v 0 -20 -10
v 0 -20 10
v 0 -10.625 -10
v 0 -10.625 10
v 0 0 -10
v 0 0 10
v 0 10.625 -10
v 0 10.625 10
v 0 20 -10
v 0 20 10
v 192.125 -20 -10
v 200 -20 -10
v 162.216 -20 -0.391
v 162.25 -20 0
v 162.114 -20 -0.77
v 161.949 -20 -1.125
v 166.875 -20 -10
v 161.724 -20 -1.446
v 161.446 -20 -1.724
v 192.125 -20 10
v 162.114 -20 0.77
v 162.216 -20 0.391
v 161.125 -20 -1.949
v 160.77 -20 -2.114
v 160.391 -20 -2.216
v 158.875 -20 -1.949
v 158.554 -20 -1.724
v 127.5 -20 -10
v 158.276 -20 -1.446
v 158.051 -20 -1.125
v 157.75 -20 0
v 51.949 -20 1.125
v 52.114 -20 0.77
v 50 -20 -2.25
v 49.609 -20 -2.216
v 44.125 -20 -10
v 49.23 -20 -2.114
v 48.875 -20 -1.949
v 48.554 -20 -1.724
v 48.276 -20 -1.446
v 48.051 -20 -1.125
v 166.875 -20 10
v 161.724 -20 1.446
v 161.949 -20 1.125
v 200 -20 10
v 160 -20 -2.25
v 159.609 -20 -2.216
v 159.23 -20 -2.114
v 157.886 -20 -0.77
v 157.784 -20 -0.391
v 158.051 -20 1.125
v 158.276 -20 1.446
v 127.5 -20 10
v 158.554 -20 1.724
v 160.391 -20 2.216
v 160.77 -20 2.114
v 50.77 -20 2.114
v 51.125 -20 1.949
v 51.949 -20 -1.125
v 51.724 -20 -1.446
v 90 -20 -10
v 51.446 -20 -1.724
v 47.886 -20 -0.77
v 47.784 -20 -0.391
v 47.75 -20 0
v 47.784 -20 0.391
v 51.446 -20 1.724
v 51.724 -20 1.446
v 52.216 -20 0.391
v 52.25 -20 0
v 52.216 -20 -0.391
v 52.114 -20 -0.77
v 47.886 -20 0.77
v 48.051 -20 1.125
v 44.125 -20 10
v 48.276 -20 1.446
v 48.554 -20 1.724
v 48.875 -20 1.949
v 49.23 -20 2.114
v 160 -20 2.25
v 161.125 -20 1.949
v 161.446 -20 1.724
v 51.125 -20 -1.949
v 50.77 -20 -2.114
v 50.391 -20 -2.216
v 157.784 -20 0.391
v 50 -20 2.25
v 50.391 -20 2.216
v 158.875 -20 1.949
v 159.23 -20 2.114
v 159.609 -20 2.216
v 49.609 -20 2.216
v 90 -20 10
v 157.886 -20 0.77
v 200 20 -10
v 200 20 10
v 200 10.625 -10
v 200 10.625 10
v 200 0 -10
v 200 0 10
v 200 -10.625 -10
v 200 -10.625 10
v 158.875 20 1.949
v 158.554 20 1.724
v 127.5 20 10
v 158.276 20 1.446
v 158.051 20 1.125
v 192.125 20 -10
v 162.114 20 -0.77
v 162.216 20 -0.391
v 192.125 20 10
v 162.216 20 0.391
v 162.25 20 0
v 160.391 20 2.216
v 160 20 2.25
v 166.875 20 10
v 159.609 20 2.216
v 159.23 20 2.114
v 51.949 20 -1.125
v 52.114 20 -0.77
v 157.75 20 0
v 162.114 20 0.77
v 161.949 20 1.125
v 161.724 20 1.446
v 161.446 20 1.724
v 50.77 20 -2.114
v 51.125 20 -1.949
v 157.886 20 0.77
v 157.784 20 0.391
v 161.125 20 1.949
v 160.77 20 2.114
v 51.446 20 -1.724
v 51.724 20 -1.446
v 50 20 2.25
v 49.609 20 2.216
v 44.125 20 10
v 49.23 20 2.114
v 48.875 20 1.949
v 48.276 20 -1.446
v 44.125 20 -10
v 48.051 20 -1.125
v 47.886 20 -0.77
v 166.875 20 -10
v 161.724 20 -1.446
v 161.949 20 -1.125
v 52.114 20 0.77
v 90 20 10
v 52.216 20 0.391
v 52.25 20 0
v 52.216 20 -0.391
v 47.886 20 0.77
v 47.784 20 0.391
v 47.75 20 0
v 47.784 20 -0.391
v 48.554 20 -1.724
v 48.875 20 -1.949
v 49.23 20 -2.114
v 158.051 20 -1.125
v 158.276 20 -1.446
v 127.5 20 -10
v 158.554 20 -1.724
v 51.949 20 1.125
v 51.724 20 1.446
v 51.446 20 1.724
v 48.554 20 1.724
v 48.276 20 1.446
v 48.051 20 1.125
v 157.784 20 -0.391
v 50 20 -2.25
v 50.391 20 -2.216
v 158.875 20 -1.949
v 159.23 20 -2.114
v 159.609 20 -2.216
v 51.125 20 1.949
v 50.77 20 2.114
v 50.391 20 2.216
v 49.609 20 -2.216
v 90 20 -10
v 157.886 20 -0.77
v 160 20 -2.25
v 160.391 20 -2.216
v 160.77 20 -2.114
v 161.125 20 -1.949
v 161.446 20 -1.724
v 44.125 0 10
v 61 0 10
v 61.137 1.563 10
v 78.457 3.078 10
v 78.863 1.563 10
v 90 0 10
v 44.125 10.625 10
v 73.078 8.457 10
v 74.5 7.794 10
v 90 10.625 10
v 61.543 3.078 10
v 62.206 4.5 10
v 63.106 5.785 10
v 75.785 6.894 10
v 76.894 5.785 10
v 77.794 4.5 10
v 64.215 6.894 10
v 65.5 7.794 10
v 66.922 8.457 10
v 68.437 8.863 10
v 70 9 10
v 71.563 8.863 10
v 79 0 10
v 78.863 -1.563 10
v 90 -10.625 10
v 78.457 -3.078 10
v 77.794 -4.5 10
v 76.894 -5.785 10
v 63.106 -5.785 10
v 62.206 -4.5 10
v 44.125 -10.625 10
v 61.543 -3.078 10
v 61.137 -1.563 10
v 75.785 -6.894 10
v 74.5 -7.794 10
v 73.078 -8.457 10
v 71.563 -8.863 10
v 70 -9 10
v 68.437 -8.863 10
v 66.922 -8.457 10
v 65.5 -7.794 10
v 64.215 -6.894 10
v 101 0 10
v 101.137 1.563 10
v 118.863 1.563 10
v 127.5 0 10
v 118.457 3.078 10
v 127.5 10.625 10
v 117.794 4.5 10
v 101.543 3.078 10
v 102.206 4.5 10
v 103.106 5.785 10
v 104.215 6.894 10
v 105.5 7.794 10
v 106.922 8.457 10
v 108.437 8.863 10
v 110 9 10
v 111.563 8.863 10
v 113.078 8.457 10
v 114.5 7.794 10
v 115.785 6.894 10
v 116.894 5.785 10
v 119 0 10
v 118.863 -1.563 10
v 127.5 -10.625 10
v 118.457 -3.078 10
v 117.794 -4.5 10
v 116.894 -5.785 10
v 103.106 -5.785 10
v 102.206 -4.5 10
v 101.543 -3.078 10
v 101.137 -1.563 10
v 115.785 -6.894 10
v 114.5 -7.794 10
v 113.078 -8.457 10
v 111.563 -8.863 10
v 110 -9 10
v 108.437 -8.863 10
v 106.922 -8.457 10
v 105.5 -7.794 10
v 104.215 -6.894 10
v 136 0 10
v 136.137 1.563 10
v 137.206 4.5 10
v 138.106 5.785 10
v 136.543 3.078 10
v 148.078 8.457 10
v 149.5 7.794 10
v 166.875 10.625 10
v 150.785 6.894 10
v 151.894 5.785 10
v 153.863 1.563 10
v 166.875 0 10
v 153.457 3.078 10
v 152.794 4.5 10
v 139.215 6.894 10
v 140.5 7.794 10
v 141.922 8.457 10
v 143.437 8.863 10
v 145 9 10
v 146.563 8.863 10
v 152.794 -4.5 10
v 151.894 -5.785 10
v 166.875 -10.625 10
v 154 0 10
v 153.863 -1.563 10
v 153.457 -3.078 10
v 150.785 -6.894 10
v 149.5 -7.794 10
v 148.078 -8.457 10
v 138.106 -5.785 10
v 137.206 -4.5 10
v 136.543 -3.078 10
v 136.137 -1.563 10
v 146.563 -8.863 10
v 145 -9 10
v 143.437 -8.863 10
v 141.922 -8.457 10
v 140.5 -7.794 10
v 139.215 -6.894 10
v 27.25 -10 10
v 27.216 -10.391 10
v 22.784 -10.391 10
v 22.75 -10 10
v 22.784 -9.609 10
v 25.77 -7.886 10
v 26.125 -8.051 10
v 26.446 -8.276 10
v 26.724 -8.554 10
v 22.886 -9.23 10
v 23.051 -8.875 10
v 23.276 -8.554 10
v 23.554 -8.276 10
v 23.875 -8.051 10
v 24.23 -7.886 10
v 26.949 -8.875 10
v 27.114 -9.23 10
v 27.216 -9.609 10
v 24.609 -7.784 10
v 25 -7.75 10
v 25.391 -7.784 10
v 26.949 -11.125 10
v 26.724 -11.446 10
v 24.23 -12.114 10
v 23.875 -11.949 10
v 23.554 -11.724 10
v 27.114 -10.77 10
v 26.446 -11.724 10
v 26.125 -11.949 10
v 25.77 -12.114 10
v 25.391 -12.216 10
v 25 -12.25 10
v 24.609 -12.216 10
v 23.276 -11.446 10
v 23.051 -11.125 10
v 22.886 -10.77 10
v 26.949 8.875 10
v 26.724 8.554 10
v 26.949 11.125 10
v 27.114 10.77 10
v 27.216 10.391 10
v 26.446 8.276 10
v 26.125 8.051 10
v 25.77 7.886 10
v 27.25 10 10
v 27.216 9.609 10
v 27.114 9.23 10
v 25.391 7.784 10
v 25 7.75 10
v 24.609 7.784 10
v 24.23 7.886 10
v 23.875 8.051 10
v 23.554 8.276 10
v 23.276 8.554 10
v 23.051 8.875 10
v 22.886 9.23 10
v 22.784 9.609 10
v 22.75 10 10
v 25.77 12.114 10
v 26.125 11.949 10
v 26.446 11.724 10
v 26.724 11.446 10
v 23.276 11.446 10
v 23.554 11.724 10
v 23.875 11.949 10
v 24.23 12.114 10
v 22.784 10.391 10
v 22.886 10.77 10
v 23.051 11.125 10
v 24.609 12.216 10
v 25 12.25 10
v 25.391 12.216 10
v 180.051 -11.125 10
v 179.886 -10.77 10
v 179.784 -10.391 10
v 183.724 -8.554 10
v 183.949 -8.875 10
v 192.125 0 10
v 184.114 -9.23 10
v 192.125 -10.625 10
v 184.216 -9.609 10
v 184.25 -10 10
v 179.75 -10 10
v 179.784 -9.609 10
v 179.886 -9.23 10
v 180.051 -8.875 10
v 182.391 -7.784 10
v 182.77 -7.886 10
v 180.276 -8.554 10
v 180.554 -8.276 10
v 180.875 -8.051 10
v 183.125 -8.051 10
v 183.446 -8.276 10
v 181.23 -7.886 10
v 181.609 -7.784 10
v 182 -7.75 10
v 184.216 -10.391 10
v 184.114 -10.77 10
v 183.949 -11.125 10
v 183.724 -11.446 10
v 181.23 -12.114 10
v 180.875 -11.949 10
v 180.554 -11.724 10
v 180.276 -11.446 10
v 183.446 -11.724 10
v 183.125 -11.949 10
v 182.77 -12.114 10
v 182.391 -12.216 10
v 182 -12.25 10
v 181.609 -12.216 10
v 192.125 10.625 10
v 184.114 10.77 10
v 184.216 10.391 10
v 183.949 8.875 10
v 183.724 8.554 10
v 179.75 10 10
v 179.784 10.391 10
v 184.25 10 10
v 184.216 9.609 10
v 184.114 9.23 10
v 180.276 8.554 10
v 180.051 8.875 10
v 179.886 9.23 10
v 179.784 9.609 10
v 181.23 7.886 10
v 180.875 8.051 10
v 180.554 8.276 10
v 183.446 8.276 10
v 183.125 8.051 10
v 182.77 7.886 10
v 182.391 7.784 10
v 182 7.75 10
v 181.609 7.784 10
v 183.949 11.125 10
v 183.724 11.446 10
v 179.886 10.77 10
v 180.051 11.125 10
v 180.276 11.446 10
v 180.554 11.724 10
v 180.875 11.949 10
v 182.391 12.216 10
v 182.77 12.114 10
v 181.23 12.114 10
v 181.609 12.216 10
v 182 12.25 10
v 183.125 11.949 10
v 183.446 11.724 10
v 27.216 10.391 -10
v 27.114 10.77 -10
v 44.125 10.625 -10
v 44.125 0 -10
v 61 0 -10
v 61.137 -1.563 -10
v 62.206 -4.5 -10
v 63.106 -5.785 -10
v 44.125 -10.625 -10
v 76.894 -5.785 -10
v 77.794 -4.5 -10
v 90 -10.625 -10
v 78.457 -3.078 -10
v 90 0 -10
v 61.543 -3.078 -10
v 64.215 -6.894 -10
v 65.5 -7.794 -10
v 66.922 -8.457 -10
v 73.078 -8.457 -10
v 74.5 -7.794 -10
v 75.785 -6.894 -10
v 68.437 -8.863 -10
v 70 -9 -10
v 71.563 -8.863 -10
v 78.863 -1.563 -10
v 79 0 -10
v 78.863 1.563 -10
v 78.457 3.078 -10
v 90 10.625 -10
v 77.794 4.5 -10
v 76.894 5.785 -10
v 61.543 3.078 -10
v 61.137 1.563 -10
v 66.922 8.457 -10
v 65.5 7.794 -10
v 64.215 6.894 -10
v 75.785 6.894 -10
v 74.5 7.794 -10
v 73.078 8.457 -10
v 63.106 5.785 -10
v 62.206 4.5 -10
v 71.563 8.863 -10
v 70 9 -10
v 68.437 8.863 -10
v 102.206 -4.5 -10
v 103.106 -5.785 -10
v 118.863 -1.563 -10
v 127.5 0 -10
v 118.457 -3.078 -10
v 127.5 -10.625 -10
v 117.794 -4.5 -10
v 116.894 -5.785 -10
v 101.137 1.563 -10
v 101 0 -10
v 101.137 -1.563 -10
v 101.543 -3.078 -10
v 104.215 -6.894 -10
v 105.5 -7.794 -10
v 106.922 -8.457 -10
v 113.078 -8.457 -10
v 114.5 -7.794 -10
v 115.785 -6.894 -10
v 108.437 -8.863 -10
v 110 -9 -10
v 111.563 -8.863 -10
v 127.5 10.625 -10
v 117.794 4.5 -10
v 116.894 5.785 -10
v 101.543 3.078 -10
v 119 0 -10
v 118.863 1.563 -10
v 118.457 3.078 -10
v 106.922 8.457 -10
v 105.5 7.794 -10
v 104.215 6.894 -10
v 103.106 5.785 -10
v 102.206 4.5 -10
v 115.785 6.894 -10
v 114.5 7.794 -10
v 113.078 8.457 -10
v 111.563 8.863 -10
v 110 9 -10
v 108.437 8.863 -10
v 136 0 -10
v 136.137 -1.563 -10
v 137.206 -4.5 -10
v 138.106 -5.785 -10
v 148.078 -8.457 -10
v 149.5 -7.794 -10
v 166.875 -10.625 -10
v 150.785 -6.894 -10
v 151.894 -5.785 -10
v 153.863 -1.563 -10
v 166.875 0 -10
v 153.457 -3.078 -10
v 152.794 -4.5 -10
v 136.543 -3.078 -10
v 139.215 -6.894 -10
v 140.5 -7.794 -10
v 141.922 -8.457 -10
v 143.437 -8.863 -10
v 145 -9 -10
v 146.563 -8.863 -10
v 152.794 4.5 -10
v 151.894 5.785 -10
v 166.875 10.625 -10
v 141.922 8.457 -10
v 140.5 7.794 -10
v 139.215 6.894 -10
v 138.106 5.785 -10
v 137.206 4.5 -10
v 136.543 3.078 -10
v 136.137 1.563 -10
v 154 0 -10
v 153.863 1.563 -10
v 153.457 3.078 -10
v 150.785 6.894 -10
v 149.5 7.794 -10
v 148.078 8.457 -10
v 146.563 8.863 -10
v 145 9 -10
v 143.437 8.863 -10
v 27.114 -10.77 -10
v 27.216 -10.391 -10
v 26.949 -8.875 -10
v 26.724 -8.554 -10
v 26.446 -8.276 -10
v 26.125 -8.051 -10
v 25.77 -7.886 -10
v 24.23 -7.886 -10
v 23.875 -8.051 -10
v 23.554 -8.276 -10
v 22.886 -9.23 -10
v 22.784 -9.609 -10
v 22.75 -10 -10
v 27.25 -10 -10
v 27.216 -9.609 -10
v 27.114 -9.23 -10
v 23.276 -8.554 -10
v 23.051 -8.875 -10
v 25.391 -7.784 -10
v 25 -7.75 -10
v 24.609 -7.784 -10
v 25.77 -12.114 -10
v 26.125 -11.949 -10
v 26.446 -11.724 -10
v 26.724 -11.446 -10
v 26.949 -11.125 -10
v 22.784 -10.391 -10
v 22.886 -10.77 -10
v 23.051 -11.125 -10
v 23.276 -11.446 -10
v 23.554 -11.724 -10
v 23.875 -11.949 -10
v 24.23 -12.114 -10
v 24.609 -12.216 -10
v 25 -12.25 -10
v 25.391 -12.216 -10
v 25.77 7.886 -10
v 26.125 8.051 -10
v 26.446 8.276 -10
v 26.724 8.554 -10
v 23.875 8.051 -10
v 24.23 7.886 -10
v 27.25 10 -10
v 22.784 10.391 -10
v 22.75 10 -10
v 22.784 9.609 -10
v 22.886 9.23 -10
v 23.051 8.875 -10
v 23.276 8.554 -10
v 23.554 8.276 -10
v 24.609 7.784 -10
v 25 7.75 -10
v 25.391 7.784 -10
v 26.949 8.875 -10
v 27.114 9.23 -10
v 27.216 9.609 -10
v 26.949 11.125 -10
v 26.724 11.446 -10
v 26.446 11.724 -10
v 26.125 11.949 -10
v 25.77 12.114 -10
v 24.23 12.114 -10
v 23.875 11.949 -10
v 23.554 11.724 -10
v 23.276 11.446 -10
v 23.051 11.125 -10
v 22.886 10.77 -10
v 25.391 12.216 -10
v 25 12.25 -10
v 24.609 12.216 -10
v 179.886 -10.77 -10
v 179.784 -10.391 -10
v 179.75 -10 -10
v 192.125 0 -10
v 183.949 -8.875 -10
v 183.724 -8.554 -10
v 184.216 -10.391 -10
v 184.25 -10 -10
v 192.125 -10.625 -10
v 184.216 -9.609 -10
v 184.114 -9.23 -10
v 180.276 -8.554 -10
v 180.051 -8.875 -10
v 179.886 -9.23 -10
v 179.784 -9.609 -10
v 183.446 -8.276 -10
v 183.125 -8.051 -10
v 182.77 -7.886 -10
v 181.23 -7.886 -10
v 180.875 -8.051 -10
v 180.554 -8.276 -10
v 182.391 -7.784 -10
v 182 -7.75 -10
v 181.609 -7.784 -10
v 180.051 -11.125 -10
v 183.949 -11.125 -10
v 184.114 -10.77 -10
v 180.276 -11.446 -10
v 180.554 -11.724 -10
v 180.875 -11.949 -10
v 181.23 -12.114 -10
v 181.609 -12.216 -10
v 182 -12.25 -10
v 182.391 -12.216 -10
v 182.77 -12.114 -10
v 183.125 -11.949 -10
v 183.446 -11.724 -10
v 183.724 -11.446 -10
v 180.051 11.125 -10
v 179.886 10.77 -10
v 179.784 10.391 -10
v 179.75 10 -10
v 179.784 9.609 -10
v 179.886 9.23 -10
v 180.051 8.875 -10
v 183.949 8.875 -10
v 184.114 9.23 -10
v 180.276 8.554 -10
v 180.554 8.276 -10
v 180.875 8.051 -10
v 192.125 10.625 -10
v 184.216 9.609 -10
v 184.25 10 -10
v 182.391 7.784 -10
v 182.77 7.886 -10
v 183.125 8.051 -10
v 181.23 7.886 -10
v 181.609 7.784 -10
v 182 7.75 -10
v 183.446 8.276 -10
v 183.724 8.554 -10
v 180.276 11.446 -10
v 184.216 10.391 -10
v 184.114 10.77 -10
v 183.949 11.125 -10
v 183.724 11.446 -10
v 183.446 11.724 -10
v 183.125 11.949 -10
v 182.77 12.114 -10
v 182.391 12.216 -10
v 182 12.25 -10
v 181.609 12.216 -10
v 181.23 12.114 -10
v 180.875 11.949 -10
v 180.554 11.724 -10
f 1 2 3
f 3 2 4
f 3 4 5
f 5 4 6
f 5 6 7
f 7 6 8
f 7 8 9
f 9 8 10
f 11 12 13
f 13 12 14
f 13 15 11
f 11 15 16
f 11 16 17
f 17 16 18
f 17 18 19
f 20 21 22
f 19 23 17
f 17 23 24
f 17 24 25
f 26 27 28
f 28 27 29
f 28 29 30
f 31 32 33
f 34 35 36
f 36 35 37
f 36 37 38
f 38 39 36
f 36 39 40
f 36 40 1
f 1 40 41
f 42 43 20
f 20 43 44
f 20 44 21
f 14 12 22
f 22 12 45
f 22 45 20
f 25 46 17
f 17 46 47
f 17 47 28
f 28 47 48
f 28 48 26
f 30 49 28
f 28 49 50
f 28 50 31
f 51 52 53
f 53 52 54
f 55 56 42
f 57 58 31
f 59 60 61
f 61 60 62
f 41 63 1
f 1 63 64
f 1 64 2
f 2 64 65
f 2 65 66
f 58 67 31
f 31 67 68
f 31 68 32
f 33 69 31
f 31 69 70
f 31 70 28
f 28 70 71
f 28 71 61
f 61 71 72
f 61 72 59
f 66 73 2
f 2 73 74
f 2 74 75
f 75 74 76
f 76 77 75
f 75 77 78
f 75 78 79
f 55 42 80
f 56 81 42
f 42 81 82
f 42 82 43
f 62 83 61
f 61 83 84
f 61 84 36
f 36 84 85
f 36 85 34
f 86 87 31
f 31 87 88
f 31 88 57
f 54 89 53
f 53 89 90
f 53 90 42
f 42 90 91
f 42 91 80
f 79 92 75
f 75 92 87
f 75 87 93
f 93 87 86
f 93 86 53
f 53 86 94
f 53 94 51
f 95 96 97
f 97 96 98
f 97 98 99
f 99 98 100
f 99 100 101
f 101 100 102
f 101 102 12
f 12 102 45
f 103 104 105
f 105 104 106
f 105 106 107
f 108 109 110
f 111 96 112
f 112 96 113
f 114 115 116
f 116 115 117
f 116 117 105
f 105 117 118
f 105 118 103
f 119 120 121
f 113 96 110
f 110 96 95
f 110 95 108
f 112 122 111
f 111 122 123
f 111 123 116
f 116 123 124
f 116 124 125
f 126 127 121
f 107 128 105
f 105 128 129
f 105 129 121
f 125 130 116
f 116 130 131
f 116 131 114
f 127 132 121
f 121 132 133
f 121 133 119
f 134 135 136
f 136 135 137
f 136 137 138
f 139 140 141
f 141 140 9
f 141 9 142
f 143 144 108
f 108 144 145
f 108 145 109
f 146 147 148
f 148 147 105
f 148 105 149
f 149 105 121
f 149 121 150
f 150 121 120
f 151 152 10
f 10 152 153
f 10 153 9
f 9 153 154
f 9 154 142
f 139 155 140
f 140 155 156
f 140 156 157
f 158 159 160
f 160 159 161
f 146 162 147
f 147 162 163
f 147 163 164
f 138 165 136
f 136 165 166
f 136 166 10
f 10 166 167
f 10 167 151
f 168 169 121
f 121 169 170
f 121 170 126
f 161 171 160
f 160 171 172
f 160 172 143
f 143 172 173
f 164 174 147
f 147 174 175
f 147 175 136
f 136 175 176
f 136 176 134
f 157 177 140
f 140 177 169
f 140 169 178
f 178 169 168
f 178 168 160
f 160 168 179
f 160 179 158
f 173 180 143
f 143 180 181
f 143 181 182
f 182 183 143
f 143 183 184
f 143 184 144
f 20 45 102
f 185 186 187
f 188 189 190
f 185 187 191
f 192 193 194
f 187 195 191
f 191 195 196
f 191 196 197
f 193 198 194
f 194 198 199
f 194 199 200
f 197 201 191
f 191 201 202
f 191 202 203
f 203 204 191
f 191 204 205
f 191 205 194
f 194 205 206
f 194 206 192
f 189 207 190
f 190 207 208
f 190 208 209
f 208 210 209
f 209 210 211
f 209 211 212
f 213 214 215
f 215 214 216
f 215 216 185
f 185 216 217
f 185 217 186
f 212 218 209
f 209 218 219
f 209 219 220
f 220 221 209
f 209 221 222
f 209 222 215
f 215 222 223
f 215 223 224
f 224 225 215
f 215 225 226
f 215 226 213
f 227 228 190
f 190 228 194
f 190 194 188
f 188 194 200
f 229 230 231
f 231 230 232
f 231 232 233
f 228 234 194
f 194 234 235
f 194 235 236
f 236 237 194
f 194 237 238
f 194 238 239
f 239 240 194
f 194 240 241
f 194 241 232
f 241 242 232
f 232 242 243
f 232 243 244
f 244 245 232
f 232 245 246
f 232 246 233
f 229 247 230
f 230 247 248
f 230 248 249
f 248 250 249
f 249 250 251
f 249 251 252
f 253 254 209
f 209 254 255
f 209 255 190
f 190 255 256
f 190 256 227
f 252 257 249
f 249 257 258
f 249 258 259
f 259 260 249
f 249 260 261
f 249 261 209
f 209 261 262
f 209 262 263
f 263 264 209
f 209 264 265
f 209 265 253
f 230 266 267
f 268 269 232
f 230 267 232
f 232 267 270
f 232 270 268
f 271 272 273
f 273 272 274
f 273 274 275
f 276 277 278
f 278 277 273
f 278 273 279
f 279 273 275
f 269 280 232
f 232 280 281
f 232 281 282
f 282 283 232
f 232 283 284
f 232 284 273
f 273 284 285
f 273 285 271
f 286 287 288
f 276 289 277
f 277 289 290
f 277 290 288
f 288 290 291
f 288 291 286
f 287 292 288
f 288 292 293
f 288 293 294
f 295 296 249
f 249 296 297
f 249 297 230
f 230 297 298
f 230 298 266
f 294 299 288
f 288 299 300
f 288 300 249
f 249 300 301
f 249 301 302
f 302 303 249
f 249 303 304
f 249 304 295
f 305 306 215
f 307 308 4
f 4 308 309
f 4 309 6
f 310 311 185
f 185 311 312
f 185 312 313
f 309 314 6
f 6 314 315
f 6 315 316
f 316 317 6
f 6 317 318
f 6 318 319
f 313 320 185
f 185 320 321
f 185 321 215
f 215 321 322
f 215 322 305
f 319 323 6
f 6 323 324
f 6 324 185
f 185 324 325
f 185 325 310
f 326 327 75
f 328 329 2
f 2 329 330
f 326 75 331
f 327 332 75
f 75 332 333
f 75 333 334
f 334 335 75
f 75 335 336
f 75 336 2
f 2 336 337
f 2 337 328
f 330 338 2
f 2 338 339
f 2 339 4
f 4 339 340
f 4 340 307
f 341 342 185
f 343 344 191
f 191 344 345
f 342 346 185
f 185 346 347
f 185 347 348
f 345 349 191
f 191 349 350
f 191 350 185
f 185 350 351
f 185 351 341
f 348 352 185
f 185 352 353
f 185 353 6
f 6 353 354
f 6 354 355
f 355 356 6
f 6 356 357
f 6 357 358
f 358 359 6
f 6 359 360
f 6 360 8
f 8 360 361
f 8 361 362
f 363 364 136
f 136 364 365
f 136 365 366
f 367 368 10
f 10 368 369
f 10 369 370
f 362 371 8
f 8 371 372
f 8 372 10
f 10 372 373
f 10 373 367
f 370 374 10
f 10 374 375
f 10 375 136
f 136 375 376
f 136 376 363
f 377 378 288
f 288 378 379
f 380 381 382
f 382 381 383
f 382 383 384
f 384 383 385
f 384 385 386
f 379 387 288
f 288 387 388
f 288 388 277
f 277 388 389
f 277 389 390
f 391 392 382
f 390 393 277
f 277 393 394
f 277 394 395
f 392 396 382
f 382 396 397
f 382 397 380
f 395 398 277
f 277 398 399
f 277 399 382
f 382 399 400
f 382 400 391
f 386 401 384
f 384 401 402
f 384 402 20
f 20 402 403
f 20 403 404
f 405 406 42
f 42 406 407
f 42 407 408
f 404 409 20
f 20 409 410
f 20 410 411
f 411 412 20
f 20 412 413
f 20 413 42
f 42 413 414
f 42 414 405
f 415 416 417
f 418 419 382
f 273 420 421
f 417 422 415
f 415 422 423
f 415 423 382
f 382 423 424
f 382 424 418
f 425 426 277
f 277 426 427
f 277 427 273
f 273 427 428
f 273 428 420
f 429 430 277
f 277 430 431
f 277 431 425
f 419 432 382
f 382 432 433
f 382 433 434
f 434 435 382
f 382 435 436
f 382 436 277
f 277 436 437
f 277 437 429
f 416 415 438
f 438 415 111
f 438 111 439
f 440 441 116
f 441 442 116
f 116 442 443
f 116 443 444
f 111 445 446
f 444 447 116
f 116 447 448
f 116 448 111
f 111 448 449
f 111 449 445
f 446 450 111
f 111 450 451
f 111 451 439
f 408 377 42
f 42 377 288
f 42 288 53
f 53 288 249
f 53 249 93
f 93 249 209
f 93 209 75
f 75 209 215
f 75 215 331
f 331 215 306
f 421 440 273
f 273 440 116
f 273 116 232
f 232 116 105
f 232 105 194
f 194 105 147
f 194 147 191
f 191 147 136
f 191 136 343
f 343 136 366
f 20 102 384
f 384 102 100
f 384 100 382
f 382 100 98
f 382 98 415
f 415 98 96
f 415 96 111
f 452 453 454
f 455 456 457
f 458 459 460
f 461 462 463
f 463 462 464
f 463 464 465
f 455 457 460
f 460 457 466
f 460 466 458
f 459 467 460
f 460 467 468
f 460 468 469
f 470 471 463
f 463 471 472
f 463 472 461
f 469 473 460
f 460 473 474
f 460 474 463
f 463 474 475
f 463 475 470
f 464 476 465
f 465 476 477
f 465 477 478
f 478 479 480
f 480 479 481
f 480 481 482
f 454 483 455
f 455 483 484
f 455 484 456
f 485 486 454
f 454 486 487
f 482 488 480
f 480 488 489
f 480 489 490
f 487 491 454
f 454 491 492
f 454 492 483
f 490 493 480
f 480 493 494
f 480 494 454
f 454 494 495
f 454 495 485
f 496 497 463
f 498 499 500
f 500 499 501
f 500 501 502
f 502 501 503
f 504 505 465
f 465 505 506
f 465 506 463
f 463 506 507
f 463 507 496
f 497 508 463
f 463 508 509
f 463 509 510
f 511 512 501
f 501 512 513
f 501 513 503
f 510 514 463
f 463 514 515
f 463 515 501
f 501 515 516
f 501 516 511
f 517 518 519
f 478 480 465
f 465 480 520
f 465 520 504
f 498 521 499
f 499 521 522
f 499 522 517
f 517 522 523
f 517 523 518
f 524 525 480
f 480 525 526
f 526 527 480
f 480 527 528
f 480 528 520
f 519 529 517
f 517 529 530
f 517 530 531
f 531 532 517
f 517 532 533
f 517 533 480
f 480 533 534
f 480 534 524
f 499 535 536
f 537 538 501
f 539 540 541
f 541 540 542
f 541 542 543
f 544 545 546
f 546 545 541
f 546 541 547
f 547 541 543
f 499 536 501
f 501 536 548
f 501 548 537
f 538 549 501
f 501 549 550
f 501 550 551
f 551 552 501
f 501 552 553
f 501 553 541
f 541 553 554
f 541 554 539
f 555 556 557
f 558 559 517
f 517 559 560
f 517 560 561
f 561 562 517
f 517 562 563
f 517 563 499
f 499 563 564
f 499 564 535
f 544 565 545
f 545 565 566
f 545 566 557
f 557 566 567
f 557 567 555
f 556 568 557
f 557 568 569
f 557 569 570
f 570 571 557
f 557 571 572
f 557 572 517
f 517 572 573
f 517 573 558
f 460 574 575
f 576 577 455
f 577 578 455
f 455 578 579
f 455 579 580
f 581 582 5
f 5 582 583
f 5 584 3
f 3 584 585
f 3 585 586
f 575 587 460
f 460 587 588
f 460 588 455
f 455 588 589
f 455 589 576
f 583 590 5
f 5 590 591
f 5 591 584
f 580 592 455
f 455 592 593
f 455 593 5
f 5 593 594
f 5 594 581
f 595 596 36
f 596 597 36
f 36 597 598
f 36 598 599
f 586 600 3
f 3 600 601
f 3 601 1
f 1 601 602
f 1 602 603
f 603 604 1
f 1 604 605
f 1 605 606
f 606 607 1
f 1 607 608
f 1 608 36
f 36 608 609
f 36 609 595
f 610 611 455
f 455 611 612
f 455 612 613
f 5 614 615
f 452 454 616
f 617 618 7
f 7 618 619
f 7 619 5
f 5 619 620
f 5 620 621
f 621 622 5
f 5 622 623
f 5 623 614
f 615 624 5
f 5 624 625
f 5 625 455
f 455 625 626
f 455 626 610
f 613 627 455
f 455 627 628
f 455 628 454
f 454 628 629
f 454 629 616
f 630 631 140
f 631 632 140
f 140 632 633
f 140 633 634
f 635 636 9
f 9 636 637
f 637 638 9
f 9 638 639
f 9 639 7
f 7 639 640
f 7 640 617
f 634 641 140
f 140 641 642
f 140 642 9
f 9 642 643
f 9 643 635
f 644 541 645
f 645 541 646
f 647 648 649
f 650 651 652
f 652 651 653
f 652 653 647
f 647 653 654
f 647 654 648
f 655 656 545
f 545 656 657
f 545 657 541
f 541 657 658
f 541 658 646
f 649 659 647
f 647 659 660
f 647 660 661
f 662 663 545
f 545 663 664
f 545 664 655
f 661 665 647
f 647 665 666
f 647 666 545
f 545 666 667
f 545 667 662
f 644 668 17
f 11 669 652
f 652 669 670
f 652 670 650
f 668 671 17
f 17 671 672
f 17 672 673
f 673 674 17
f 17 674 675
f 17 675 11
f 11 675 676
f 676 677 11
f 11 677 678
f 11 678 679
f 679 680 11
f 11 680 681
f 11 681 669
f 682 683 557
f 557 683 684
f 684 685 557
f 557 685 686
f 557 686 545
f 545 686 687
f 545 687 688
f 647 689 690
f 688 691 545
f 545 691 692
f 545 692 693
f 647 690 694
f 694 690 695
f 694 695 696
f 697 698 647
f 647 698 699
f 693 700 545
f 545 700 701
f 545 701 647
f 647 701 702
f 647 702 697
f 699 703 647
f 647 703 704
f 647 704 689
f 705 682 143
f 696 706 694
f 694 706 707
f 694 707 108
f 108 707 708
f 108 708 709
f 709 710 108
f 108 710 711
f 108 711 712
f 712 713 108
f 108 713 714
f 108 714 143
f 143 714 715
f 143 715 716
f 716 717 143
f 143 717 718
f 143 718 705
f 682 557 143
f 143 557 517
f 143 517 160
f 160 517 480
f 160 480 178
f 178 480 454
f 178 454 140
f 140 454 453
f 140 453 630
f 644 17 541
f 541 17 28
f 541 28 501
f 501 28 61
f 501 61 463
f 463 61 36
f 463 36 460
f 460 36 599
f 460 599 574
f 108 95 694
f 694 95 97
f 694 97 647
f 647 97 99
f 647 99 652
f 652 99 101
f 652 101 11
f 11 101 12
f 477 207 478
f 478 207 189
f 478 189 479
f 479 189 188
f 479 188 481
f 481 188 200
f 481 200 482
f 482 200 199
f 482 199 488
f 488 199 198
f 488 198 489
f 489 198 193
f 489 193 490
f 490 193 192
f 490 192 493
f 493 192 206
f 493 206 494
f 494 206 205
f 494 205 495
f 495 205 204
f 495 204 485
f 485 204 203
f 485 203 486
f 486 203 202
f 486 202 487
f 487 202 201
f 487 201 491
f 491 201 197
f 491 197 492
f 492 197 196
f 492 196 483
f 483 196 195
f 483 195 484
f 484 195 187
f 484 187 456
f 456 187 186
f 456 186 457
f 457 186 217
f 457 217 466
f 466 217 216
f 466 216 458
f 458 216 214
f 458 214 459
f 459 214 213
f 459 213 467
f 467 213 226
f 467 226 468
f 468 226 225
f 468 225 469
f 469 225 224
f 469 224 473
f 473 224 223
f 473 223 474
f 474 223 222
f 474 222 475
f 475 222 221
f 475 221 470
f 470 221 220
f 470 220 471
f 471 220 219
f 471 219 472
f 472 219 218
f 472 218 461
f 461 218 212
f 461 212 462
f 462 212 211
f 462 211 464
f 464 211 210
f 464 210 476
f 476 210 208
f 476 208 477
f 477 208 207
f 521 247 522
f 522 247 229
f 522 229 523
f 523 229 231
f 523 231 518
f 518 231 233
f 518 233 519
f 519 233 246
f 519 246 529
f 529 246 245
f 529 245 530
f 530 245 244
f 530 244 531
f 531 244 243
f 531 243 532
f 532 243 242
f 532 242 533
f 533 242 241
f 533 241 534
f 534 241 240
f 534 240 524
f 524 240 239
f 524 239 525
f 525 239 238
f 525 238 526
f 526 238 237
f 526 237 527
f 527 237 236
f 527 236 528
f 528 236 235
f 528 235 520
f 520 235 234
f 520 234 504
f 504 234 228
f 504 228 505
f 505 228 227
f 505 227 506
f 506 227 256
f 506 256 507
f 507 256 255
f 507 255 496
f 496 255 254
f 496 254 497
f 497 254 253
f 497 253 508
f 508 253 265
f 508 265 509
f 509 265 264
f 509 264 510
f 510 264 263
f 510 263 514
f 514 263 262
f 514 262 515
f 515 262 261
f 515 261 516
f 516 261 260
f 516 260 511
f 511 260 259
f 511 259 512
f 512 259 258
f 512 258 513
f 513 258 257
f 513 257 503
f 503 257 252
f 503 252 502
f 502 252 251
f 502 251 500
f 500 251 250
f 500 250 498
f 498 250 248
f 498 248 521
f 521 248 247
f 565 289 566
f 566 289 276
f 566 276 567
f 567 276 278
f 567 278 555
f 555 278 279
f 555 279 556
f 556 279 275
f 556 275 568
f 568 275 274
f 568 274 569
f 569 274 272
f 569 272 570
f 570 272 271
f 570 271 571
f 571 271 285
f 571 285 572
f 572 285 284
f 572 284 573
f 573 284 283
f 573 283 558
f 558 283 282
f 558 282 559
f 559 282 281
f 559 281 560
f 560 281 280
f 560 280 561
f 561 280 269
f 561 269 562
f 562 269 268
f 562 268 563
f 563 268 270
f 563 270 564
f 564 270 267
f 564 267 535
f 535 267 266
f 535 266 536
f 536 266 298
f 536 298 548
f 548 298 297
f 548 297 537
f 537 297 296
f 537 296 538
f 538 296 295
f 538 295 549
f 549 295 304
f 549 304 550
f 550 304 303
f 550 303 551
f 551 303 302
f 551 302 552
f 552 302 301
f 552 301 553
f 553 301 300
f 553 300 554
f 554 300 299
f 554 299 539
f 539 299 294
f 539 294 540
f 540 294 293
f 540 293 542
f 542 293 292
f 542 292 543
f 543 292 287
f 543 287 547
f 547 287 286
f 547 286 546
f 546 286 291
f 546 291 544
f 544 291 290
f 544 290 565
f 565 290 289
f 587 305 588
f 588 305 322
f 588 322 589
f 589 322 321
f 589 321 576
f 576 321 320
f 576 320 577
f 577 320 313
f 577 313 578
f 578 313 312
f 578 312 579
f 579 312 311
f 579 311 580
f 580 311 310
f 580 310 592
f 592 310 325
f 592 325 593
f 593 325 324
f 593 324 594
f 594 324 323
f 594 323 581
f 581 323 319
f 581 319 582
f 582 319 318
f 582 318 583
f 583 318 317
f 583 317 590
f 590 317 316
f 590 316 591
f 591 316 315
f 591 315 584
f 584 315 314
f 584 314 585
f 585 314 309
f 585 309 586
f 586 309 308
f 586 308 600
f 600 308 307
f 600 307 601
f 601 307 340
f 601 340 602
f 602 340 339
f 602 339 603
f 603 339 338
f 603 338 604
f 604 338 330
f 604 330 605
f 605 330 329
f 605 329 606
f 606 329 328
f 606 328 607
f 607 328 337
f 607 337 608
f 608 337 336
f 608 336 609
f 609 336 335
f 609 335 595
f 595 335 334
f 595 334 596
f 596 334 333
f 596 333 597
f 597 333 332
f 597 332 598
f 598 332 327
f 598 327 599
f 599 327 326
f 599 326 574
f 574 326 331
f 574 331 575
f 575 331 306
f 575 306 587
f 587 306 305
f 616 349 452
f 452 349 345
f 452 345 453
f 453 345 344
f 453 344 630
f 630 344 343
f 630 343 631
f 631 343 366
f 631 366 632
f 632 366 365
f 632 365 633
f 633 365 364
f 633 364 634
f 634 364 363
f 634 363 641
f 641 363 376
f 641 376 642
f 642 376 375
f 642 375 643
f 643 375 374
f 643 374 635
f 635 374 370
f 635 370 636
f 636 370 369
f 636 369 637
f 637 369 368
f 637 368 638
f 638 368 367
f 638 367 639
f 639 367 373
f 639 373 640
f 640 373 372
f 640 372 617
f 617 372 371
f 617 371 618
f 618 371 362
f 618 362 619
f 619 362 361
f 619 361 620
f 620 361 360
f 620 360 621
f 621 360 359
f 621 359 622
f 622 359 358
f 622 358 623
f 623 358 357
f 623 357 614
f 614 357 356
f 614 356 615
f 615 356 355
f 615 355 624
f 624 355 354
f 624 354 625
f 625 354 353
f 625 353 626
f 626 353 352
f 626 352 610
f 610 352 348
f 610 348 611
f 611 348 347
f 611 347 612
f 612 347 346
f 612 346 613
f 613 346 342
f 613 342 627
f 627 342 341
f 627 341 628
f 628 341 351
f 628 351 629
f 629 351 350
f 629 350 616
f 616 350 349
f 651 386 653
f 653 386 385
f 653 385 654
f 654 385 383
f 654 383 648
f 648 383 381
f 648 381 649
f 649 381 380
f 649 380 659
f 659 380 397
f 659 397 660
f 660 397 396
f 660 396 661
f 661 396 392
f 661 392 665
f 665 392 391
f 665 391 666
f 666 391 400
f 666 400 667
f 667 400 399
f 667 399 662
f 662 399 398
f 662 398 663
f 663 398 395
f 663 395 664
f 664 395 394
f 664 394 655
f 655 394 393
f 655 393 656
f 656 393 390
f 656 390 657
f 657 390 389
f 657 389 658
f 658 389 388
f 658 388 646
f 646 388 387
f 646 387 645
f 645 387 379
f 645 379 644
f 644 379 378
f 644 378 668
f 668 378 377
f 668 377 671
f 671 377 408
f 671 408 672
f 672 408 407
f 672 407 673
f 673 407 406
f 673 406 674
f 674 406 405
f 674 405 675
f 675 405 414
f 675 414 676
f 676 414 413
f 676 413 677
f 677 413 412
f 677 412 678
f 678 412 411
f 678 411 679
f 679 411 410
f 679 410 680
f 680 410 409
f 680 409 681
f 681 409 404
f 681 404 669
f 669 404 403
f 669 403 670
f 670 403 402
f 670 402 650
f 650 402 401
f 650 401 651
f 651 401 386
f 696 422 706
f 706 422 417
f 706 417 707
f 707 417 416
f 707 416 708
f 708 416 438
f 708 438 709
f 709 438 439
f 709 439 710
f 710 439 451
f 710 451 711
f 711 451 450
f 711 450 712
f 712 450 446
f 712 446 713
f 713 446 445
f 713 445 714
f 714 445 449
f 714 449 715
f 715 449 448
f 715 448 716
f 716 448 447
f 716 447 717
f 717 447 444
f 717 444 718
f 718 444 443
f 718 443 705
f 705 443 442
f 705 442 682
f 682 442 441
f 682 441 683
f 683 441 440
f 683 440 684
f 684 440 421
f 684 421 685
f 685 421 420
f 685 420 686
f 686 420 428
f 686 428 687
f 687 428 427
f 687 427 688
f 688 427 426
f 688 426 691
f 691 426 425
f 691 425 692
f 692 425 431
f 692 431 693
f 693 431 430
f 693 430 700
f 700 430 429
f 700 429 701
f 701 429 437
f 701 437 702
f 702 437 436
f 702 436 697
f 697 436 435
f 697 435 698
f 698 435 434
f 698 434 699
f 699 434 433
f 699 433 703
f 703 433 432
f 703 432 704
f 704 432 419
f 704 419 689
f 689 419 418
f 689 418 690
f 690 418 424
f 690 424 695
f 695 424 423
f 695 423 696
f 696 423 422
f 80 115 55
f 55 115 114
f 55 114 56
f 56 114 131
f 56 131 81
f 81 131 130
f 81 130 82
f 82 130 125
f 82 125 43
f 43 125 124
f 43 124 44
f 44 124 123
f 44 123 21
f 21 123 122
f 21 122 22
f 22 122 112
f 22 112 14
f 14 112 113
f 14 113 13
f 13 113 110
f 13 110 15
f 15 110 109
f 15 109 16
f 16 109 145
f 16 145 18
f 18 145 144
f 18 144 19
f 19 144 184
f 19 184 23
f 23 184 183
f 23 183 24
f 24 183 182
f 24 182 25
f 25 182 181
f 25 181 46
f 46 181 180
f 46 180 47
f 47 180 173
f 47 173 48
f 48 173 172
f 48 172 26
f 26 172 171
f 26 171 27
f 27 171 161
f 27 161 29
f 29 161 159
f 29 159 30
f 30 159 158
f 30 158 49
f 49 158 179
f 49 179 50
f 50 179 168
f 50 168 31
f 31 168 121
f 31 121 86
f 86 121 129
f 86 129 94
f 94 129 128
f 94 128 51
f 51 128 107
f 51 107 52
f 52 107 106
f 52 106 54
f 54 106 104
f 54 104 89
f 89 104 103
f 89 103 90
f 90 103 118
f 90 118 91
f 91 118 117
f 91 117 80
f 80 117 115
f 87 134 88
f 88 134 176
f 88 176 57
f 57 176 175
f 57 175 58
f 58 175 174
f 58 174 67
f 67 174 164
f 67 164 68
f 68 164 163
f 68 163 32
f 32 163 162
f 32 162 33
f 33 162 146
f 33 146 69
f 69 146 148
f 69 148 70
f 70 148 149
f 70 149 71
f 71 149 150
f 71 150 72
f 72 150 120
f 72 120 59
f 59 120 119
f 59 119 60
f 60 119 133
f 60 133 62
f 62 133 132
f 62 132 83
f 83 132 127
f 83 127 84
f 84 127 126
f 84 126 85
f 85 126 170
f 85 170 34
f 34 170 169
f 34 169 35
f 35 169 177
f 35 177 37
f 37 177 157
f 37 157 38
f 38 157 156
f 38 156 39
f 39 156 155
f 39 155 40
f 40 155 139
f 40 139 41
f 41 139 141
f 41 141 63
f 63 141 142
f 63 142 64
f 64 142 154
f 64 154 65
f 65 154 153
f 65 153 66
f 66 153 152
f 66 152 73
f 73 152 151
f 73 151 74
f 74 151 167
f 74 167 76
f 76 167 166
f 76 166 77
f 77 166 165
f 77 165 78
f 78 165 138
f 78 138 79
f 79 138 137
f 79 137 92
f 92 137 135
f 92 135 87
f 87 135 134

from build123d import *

# Parameters (mm, degrees)
F_200X40X20_START          = -10
SKETCH_1_W                 = 200
SKETCH_1_H                 = 40
F_200X40X20_DEPTH          = 20
CUT_EXTRUDE_321_DEPTH      = 202.246117975
CUT_EXTRUDE_321_DEPTH_BACK = 202.246117975
SKETCH_2_R                 = 9
SKETCH_2_R_2               = 2.25
CUT_EXTRUDE_M4_DEPTH       = 202.246117975
CUT_EXTRUDE_M4_DEPTH_BACK  = 202.246117975
SKETCH_3_R                 = 2.25


with BuildPart() as part:
    # 草图1 → 前臂200x40x20 (new body)
    with BuildSketch(Plane.XY.offset(F_200X40X20_START)):
        with Locations((100, 0)):
            Rectangle(SKETCH_1_W, SKETCH_1_H)
    extrude(amount=F_200X40X20_DEPTH)

    # 草图2 → Cut-Extrude 321 (cut, two sides: drawn at the far end of the back side and taken through both)
    with BuildSketch(Plane.XY.offset(-CUT_EXTRUDE_321_DEPTH_BACK)):
        with Locations((70, 0)):
            Circle(SKETCH_2_R)
        with Locations((110, 0)):
            Circle(SKETCH_2_R)
        with Locations((145, 0)):
            Circle(SKETCH_2_R)
        with Locations((25, -10)):
            Circle(SKETCH_2_R_2)
        with Locations((25, 10)):
            Circle(SKETCH_2_R_2)
        with Locations((182, -10)):
            Circle(SKETCH_2_R_2)
        with Locations((182, 10)):
            Circle(SKETCH_2_R_2)
    extrude(amount=CUT_EXTRUDE_321_DEPTH + CUT_EXTRUDE_321_DEPTH_BACK, mode=Mode.SUBTRACT)

    # 草图3 → 主板托盘竖向M4 (cut, two sides: drawn at the far end of the back side and taken through both)
    with BuildSketch(Plane(origin=(0, 0, 0), x_dir=(1, 0, 0), z_dir=(0, 1, 0)).offset(-CUT_EXTRUDE_M4_DEPTH_BACK)):
        with Locations(Location((50, 0, 0), (0, 0, 270))):
            Circle(SKETCH_3_R)
        with Locations(Location((160, 0, 0), (0, 0, 270))):
            Circle(SKETCH_3_R)
    extrude(amount=CUT_EXTRUDE_M4_DEPTH + CUT_EXTRUDE_M4_DEPTH_BACK, mode=Mode.SUBTRACT)


solid = part.part
